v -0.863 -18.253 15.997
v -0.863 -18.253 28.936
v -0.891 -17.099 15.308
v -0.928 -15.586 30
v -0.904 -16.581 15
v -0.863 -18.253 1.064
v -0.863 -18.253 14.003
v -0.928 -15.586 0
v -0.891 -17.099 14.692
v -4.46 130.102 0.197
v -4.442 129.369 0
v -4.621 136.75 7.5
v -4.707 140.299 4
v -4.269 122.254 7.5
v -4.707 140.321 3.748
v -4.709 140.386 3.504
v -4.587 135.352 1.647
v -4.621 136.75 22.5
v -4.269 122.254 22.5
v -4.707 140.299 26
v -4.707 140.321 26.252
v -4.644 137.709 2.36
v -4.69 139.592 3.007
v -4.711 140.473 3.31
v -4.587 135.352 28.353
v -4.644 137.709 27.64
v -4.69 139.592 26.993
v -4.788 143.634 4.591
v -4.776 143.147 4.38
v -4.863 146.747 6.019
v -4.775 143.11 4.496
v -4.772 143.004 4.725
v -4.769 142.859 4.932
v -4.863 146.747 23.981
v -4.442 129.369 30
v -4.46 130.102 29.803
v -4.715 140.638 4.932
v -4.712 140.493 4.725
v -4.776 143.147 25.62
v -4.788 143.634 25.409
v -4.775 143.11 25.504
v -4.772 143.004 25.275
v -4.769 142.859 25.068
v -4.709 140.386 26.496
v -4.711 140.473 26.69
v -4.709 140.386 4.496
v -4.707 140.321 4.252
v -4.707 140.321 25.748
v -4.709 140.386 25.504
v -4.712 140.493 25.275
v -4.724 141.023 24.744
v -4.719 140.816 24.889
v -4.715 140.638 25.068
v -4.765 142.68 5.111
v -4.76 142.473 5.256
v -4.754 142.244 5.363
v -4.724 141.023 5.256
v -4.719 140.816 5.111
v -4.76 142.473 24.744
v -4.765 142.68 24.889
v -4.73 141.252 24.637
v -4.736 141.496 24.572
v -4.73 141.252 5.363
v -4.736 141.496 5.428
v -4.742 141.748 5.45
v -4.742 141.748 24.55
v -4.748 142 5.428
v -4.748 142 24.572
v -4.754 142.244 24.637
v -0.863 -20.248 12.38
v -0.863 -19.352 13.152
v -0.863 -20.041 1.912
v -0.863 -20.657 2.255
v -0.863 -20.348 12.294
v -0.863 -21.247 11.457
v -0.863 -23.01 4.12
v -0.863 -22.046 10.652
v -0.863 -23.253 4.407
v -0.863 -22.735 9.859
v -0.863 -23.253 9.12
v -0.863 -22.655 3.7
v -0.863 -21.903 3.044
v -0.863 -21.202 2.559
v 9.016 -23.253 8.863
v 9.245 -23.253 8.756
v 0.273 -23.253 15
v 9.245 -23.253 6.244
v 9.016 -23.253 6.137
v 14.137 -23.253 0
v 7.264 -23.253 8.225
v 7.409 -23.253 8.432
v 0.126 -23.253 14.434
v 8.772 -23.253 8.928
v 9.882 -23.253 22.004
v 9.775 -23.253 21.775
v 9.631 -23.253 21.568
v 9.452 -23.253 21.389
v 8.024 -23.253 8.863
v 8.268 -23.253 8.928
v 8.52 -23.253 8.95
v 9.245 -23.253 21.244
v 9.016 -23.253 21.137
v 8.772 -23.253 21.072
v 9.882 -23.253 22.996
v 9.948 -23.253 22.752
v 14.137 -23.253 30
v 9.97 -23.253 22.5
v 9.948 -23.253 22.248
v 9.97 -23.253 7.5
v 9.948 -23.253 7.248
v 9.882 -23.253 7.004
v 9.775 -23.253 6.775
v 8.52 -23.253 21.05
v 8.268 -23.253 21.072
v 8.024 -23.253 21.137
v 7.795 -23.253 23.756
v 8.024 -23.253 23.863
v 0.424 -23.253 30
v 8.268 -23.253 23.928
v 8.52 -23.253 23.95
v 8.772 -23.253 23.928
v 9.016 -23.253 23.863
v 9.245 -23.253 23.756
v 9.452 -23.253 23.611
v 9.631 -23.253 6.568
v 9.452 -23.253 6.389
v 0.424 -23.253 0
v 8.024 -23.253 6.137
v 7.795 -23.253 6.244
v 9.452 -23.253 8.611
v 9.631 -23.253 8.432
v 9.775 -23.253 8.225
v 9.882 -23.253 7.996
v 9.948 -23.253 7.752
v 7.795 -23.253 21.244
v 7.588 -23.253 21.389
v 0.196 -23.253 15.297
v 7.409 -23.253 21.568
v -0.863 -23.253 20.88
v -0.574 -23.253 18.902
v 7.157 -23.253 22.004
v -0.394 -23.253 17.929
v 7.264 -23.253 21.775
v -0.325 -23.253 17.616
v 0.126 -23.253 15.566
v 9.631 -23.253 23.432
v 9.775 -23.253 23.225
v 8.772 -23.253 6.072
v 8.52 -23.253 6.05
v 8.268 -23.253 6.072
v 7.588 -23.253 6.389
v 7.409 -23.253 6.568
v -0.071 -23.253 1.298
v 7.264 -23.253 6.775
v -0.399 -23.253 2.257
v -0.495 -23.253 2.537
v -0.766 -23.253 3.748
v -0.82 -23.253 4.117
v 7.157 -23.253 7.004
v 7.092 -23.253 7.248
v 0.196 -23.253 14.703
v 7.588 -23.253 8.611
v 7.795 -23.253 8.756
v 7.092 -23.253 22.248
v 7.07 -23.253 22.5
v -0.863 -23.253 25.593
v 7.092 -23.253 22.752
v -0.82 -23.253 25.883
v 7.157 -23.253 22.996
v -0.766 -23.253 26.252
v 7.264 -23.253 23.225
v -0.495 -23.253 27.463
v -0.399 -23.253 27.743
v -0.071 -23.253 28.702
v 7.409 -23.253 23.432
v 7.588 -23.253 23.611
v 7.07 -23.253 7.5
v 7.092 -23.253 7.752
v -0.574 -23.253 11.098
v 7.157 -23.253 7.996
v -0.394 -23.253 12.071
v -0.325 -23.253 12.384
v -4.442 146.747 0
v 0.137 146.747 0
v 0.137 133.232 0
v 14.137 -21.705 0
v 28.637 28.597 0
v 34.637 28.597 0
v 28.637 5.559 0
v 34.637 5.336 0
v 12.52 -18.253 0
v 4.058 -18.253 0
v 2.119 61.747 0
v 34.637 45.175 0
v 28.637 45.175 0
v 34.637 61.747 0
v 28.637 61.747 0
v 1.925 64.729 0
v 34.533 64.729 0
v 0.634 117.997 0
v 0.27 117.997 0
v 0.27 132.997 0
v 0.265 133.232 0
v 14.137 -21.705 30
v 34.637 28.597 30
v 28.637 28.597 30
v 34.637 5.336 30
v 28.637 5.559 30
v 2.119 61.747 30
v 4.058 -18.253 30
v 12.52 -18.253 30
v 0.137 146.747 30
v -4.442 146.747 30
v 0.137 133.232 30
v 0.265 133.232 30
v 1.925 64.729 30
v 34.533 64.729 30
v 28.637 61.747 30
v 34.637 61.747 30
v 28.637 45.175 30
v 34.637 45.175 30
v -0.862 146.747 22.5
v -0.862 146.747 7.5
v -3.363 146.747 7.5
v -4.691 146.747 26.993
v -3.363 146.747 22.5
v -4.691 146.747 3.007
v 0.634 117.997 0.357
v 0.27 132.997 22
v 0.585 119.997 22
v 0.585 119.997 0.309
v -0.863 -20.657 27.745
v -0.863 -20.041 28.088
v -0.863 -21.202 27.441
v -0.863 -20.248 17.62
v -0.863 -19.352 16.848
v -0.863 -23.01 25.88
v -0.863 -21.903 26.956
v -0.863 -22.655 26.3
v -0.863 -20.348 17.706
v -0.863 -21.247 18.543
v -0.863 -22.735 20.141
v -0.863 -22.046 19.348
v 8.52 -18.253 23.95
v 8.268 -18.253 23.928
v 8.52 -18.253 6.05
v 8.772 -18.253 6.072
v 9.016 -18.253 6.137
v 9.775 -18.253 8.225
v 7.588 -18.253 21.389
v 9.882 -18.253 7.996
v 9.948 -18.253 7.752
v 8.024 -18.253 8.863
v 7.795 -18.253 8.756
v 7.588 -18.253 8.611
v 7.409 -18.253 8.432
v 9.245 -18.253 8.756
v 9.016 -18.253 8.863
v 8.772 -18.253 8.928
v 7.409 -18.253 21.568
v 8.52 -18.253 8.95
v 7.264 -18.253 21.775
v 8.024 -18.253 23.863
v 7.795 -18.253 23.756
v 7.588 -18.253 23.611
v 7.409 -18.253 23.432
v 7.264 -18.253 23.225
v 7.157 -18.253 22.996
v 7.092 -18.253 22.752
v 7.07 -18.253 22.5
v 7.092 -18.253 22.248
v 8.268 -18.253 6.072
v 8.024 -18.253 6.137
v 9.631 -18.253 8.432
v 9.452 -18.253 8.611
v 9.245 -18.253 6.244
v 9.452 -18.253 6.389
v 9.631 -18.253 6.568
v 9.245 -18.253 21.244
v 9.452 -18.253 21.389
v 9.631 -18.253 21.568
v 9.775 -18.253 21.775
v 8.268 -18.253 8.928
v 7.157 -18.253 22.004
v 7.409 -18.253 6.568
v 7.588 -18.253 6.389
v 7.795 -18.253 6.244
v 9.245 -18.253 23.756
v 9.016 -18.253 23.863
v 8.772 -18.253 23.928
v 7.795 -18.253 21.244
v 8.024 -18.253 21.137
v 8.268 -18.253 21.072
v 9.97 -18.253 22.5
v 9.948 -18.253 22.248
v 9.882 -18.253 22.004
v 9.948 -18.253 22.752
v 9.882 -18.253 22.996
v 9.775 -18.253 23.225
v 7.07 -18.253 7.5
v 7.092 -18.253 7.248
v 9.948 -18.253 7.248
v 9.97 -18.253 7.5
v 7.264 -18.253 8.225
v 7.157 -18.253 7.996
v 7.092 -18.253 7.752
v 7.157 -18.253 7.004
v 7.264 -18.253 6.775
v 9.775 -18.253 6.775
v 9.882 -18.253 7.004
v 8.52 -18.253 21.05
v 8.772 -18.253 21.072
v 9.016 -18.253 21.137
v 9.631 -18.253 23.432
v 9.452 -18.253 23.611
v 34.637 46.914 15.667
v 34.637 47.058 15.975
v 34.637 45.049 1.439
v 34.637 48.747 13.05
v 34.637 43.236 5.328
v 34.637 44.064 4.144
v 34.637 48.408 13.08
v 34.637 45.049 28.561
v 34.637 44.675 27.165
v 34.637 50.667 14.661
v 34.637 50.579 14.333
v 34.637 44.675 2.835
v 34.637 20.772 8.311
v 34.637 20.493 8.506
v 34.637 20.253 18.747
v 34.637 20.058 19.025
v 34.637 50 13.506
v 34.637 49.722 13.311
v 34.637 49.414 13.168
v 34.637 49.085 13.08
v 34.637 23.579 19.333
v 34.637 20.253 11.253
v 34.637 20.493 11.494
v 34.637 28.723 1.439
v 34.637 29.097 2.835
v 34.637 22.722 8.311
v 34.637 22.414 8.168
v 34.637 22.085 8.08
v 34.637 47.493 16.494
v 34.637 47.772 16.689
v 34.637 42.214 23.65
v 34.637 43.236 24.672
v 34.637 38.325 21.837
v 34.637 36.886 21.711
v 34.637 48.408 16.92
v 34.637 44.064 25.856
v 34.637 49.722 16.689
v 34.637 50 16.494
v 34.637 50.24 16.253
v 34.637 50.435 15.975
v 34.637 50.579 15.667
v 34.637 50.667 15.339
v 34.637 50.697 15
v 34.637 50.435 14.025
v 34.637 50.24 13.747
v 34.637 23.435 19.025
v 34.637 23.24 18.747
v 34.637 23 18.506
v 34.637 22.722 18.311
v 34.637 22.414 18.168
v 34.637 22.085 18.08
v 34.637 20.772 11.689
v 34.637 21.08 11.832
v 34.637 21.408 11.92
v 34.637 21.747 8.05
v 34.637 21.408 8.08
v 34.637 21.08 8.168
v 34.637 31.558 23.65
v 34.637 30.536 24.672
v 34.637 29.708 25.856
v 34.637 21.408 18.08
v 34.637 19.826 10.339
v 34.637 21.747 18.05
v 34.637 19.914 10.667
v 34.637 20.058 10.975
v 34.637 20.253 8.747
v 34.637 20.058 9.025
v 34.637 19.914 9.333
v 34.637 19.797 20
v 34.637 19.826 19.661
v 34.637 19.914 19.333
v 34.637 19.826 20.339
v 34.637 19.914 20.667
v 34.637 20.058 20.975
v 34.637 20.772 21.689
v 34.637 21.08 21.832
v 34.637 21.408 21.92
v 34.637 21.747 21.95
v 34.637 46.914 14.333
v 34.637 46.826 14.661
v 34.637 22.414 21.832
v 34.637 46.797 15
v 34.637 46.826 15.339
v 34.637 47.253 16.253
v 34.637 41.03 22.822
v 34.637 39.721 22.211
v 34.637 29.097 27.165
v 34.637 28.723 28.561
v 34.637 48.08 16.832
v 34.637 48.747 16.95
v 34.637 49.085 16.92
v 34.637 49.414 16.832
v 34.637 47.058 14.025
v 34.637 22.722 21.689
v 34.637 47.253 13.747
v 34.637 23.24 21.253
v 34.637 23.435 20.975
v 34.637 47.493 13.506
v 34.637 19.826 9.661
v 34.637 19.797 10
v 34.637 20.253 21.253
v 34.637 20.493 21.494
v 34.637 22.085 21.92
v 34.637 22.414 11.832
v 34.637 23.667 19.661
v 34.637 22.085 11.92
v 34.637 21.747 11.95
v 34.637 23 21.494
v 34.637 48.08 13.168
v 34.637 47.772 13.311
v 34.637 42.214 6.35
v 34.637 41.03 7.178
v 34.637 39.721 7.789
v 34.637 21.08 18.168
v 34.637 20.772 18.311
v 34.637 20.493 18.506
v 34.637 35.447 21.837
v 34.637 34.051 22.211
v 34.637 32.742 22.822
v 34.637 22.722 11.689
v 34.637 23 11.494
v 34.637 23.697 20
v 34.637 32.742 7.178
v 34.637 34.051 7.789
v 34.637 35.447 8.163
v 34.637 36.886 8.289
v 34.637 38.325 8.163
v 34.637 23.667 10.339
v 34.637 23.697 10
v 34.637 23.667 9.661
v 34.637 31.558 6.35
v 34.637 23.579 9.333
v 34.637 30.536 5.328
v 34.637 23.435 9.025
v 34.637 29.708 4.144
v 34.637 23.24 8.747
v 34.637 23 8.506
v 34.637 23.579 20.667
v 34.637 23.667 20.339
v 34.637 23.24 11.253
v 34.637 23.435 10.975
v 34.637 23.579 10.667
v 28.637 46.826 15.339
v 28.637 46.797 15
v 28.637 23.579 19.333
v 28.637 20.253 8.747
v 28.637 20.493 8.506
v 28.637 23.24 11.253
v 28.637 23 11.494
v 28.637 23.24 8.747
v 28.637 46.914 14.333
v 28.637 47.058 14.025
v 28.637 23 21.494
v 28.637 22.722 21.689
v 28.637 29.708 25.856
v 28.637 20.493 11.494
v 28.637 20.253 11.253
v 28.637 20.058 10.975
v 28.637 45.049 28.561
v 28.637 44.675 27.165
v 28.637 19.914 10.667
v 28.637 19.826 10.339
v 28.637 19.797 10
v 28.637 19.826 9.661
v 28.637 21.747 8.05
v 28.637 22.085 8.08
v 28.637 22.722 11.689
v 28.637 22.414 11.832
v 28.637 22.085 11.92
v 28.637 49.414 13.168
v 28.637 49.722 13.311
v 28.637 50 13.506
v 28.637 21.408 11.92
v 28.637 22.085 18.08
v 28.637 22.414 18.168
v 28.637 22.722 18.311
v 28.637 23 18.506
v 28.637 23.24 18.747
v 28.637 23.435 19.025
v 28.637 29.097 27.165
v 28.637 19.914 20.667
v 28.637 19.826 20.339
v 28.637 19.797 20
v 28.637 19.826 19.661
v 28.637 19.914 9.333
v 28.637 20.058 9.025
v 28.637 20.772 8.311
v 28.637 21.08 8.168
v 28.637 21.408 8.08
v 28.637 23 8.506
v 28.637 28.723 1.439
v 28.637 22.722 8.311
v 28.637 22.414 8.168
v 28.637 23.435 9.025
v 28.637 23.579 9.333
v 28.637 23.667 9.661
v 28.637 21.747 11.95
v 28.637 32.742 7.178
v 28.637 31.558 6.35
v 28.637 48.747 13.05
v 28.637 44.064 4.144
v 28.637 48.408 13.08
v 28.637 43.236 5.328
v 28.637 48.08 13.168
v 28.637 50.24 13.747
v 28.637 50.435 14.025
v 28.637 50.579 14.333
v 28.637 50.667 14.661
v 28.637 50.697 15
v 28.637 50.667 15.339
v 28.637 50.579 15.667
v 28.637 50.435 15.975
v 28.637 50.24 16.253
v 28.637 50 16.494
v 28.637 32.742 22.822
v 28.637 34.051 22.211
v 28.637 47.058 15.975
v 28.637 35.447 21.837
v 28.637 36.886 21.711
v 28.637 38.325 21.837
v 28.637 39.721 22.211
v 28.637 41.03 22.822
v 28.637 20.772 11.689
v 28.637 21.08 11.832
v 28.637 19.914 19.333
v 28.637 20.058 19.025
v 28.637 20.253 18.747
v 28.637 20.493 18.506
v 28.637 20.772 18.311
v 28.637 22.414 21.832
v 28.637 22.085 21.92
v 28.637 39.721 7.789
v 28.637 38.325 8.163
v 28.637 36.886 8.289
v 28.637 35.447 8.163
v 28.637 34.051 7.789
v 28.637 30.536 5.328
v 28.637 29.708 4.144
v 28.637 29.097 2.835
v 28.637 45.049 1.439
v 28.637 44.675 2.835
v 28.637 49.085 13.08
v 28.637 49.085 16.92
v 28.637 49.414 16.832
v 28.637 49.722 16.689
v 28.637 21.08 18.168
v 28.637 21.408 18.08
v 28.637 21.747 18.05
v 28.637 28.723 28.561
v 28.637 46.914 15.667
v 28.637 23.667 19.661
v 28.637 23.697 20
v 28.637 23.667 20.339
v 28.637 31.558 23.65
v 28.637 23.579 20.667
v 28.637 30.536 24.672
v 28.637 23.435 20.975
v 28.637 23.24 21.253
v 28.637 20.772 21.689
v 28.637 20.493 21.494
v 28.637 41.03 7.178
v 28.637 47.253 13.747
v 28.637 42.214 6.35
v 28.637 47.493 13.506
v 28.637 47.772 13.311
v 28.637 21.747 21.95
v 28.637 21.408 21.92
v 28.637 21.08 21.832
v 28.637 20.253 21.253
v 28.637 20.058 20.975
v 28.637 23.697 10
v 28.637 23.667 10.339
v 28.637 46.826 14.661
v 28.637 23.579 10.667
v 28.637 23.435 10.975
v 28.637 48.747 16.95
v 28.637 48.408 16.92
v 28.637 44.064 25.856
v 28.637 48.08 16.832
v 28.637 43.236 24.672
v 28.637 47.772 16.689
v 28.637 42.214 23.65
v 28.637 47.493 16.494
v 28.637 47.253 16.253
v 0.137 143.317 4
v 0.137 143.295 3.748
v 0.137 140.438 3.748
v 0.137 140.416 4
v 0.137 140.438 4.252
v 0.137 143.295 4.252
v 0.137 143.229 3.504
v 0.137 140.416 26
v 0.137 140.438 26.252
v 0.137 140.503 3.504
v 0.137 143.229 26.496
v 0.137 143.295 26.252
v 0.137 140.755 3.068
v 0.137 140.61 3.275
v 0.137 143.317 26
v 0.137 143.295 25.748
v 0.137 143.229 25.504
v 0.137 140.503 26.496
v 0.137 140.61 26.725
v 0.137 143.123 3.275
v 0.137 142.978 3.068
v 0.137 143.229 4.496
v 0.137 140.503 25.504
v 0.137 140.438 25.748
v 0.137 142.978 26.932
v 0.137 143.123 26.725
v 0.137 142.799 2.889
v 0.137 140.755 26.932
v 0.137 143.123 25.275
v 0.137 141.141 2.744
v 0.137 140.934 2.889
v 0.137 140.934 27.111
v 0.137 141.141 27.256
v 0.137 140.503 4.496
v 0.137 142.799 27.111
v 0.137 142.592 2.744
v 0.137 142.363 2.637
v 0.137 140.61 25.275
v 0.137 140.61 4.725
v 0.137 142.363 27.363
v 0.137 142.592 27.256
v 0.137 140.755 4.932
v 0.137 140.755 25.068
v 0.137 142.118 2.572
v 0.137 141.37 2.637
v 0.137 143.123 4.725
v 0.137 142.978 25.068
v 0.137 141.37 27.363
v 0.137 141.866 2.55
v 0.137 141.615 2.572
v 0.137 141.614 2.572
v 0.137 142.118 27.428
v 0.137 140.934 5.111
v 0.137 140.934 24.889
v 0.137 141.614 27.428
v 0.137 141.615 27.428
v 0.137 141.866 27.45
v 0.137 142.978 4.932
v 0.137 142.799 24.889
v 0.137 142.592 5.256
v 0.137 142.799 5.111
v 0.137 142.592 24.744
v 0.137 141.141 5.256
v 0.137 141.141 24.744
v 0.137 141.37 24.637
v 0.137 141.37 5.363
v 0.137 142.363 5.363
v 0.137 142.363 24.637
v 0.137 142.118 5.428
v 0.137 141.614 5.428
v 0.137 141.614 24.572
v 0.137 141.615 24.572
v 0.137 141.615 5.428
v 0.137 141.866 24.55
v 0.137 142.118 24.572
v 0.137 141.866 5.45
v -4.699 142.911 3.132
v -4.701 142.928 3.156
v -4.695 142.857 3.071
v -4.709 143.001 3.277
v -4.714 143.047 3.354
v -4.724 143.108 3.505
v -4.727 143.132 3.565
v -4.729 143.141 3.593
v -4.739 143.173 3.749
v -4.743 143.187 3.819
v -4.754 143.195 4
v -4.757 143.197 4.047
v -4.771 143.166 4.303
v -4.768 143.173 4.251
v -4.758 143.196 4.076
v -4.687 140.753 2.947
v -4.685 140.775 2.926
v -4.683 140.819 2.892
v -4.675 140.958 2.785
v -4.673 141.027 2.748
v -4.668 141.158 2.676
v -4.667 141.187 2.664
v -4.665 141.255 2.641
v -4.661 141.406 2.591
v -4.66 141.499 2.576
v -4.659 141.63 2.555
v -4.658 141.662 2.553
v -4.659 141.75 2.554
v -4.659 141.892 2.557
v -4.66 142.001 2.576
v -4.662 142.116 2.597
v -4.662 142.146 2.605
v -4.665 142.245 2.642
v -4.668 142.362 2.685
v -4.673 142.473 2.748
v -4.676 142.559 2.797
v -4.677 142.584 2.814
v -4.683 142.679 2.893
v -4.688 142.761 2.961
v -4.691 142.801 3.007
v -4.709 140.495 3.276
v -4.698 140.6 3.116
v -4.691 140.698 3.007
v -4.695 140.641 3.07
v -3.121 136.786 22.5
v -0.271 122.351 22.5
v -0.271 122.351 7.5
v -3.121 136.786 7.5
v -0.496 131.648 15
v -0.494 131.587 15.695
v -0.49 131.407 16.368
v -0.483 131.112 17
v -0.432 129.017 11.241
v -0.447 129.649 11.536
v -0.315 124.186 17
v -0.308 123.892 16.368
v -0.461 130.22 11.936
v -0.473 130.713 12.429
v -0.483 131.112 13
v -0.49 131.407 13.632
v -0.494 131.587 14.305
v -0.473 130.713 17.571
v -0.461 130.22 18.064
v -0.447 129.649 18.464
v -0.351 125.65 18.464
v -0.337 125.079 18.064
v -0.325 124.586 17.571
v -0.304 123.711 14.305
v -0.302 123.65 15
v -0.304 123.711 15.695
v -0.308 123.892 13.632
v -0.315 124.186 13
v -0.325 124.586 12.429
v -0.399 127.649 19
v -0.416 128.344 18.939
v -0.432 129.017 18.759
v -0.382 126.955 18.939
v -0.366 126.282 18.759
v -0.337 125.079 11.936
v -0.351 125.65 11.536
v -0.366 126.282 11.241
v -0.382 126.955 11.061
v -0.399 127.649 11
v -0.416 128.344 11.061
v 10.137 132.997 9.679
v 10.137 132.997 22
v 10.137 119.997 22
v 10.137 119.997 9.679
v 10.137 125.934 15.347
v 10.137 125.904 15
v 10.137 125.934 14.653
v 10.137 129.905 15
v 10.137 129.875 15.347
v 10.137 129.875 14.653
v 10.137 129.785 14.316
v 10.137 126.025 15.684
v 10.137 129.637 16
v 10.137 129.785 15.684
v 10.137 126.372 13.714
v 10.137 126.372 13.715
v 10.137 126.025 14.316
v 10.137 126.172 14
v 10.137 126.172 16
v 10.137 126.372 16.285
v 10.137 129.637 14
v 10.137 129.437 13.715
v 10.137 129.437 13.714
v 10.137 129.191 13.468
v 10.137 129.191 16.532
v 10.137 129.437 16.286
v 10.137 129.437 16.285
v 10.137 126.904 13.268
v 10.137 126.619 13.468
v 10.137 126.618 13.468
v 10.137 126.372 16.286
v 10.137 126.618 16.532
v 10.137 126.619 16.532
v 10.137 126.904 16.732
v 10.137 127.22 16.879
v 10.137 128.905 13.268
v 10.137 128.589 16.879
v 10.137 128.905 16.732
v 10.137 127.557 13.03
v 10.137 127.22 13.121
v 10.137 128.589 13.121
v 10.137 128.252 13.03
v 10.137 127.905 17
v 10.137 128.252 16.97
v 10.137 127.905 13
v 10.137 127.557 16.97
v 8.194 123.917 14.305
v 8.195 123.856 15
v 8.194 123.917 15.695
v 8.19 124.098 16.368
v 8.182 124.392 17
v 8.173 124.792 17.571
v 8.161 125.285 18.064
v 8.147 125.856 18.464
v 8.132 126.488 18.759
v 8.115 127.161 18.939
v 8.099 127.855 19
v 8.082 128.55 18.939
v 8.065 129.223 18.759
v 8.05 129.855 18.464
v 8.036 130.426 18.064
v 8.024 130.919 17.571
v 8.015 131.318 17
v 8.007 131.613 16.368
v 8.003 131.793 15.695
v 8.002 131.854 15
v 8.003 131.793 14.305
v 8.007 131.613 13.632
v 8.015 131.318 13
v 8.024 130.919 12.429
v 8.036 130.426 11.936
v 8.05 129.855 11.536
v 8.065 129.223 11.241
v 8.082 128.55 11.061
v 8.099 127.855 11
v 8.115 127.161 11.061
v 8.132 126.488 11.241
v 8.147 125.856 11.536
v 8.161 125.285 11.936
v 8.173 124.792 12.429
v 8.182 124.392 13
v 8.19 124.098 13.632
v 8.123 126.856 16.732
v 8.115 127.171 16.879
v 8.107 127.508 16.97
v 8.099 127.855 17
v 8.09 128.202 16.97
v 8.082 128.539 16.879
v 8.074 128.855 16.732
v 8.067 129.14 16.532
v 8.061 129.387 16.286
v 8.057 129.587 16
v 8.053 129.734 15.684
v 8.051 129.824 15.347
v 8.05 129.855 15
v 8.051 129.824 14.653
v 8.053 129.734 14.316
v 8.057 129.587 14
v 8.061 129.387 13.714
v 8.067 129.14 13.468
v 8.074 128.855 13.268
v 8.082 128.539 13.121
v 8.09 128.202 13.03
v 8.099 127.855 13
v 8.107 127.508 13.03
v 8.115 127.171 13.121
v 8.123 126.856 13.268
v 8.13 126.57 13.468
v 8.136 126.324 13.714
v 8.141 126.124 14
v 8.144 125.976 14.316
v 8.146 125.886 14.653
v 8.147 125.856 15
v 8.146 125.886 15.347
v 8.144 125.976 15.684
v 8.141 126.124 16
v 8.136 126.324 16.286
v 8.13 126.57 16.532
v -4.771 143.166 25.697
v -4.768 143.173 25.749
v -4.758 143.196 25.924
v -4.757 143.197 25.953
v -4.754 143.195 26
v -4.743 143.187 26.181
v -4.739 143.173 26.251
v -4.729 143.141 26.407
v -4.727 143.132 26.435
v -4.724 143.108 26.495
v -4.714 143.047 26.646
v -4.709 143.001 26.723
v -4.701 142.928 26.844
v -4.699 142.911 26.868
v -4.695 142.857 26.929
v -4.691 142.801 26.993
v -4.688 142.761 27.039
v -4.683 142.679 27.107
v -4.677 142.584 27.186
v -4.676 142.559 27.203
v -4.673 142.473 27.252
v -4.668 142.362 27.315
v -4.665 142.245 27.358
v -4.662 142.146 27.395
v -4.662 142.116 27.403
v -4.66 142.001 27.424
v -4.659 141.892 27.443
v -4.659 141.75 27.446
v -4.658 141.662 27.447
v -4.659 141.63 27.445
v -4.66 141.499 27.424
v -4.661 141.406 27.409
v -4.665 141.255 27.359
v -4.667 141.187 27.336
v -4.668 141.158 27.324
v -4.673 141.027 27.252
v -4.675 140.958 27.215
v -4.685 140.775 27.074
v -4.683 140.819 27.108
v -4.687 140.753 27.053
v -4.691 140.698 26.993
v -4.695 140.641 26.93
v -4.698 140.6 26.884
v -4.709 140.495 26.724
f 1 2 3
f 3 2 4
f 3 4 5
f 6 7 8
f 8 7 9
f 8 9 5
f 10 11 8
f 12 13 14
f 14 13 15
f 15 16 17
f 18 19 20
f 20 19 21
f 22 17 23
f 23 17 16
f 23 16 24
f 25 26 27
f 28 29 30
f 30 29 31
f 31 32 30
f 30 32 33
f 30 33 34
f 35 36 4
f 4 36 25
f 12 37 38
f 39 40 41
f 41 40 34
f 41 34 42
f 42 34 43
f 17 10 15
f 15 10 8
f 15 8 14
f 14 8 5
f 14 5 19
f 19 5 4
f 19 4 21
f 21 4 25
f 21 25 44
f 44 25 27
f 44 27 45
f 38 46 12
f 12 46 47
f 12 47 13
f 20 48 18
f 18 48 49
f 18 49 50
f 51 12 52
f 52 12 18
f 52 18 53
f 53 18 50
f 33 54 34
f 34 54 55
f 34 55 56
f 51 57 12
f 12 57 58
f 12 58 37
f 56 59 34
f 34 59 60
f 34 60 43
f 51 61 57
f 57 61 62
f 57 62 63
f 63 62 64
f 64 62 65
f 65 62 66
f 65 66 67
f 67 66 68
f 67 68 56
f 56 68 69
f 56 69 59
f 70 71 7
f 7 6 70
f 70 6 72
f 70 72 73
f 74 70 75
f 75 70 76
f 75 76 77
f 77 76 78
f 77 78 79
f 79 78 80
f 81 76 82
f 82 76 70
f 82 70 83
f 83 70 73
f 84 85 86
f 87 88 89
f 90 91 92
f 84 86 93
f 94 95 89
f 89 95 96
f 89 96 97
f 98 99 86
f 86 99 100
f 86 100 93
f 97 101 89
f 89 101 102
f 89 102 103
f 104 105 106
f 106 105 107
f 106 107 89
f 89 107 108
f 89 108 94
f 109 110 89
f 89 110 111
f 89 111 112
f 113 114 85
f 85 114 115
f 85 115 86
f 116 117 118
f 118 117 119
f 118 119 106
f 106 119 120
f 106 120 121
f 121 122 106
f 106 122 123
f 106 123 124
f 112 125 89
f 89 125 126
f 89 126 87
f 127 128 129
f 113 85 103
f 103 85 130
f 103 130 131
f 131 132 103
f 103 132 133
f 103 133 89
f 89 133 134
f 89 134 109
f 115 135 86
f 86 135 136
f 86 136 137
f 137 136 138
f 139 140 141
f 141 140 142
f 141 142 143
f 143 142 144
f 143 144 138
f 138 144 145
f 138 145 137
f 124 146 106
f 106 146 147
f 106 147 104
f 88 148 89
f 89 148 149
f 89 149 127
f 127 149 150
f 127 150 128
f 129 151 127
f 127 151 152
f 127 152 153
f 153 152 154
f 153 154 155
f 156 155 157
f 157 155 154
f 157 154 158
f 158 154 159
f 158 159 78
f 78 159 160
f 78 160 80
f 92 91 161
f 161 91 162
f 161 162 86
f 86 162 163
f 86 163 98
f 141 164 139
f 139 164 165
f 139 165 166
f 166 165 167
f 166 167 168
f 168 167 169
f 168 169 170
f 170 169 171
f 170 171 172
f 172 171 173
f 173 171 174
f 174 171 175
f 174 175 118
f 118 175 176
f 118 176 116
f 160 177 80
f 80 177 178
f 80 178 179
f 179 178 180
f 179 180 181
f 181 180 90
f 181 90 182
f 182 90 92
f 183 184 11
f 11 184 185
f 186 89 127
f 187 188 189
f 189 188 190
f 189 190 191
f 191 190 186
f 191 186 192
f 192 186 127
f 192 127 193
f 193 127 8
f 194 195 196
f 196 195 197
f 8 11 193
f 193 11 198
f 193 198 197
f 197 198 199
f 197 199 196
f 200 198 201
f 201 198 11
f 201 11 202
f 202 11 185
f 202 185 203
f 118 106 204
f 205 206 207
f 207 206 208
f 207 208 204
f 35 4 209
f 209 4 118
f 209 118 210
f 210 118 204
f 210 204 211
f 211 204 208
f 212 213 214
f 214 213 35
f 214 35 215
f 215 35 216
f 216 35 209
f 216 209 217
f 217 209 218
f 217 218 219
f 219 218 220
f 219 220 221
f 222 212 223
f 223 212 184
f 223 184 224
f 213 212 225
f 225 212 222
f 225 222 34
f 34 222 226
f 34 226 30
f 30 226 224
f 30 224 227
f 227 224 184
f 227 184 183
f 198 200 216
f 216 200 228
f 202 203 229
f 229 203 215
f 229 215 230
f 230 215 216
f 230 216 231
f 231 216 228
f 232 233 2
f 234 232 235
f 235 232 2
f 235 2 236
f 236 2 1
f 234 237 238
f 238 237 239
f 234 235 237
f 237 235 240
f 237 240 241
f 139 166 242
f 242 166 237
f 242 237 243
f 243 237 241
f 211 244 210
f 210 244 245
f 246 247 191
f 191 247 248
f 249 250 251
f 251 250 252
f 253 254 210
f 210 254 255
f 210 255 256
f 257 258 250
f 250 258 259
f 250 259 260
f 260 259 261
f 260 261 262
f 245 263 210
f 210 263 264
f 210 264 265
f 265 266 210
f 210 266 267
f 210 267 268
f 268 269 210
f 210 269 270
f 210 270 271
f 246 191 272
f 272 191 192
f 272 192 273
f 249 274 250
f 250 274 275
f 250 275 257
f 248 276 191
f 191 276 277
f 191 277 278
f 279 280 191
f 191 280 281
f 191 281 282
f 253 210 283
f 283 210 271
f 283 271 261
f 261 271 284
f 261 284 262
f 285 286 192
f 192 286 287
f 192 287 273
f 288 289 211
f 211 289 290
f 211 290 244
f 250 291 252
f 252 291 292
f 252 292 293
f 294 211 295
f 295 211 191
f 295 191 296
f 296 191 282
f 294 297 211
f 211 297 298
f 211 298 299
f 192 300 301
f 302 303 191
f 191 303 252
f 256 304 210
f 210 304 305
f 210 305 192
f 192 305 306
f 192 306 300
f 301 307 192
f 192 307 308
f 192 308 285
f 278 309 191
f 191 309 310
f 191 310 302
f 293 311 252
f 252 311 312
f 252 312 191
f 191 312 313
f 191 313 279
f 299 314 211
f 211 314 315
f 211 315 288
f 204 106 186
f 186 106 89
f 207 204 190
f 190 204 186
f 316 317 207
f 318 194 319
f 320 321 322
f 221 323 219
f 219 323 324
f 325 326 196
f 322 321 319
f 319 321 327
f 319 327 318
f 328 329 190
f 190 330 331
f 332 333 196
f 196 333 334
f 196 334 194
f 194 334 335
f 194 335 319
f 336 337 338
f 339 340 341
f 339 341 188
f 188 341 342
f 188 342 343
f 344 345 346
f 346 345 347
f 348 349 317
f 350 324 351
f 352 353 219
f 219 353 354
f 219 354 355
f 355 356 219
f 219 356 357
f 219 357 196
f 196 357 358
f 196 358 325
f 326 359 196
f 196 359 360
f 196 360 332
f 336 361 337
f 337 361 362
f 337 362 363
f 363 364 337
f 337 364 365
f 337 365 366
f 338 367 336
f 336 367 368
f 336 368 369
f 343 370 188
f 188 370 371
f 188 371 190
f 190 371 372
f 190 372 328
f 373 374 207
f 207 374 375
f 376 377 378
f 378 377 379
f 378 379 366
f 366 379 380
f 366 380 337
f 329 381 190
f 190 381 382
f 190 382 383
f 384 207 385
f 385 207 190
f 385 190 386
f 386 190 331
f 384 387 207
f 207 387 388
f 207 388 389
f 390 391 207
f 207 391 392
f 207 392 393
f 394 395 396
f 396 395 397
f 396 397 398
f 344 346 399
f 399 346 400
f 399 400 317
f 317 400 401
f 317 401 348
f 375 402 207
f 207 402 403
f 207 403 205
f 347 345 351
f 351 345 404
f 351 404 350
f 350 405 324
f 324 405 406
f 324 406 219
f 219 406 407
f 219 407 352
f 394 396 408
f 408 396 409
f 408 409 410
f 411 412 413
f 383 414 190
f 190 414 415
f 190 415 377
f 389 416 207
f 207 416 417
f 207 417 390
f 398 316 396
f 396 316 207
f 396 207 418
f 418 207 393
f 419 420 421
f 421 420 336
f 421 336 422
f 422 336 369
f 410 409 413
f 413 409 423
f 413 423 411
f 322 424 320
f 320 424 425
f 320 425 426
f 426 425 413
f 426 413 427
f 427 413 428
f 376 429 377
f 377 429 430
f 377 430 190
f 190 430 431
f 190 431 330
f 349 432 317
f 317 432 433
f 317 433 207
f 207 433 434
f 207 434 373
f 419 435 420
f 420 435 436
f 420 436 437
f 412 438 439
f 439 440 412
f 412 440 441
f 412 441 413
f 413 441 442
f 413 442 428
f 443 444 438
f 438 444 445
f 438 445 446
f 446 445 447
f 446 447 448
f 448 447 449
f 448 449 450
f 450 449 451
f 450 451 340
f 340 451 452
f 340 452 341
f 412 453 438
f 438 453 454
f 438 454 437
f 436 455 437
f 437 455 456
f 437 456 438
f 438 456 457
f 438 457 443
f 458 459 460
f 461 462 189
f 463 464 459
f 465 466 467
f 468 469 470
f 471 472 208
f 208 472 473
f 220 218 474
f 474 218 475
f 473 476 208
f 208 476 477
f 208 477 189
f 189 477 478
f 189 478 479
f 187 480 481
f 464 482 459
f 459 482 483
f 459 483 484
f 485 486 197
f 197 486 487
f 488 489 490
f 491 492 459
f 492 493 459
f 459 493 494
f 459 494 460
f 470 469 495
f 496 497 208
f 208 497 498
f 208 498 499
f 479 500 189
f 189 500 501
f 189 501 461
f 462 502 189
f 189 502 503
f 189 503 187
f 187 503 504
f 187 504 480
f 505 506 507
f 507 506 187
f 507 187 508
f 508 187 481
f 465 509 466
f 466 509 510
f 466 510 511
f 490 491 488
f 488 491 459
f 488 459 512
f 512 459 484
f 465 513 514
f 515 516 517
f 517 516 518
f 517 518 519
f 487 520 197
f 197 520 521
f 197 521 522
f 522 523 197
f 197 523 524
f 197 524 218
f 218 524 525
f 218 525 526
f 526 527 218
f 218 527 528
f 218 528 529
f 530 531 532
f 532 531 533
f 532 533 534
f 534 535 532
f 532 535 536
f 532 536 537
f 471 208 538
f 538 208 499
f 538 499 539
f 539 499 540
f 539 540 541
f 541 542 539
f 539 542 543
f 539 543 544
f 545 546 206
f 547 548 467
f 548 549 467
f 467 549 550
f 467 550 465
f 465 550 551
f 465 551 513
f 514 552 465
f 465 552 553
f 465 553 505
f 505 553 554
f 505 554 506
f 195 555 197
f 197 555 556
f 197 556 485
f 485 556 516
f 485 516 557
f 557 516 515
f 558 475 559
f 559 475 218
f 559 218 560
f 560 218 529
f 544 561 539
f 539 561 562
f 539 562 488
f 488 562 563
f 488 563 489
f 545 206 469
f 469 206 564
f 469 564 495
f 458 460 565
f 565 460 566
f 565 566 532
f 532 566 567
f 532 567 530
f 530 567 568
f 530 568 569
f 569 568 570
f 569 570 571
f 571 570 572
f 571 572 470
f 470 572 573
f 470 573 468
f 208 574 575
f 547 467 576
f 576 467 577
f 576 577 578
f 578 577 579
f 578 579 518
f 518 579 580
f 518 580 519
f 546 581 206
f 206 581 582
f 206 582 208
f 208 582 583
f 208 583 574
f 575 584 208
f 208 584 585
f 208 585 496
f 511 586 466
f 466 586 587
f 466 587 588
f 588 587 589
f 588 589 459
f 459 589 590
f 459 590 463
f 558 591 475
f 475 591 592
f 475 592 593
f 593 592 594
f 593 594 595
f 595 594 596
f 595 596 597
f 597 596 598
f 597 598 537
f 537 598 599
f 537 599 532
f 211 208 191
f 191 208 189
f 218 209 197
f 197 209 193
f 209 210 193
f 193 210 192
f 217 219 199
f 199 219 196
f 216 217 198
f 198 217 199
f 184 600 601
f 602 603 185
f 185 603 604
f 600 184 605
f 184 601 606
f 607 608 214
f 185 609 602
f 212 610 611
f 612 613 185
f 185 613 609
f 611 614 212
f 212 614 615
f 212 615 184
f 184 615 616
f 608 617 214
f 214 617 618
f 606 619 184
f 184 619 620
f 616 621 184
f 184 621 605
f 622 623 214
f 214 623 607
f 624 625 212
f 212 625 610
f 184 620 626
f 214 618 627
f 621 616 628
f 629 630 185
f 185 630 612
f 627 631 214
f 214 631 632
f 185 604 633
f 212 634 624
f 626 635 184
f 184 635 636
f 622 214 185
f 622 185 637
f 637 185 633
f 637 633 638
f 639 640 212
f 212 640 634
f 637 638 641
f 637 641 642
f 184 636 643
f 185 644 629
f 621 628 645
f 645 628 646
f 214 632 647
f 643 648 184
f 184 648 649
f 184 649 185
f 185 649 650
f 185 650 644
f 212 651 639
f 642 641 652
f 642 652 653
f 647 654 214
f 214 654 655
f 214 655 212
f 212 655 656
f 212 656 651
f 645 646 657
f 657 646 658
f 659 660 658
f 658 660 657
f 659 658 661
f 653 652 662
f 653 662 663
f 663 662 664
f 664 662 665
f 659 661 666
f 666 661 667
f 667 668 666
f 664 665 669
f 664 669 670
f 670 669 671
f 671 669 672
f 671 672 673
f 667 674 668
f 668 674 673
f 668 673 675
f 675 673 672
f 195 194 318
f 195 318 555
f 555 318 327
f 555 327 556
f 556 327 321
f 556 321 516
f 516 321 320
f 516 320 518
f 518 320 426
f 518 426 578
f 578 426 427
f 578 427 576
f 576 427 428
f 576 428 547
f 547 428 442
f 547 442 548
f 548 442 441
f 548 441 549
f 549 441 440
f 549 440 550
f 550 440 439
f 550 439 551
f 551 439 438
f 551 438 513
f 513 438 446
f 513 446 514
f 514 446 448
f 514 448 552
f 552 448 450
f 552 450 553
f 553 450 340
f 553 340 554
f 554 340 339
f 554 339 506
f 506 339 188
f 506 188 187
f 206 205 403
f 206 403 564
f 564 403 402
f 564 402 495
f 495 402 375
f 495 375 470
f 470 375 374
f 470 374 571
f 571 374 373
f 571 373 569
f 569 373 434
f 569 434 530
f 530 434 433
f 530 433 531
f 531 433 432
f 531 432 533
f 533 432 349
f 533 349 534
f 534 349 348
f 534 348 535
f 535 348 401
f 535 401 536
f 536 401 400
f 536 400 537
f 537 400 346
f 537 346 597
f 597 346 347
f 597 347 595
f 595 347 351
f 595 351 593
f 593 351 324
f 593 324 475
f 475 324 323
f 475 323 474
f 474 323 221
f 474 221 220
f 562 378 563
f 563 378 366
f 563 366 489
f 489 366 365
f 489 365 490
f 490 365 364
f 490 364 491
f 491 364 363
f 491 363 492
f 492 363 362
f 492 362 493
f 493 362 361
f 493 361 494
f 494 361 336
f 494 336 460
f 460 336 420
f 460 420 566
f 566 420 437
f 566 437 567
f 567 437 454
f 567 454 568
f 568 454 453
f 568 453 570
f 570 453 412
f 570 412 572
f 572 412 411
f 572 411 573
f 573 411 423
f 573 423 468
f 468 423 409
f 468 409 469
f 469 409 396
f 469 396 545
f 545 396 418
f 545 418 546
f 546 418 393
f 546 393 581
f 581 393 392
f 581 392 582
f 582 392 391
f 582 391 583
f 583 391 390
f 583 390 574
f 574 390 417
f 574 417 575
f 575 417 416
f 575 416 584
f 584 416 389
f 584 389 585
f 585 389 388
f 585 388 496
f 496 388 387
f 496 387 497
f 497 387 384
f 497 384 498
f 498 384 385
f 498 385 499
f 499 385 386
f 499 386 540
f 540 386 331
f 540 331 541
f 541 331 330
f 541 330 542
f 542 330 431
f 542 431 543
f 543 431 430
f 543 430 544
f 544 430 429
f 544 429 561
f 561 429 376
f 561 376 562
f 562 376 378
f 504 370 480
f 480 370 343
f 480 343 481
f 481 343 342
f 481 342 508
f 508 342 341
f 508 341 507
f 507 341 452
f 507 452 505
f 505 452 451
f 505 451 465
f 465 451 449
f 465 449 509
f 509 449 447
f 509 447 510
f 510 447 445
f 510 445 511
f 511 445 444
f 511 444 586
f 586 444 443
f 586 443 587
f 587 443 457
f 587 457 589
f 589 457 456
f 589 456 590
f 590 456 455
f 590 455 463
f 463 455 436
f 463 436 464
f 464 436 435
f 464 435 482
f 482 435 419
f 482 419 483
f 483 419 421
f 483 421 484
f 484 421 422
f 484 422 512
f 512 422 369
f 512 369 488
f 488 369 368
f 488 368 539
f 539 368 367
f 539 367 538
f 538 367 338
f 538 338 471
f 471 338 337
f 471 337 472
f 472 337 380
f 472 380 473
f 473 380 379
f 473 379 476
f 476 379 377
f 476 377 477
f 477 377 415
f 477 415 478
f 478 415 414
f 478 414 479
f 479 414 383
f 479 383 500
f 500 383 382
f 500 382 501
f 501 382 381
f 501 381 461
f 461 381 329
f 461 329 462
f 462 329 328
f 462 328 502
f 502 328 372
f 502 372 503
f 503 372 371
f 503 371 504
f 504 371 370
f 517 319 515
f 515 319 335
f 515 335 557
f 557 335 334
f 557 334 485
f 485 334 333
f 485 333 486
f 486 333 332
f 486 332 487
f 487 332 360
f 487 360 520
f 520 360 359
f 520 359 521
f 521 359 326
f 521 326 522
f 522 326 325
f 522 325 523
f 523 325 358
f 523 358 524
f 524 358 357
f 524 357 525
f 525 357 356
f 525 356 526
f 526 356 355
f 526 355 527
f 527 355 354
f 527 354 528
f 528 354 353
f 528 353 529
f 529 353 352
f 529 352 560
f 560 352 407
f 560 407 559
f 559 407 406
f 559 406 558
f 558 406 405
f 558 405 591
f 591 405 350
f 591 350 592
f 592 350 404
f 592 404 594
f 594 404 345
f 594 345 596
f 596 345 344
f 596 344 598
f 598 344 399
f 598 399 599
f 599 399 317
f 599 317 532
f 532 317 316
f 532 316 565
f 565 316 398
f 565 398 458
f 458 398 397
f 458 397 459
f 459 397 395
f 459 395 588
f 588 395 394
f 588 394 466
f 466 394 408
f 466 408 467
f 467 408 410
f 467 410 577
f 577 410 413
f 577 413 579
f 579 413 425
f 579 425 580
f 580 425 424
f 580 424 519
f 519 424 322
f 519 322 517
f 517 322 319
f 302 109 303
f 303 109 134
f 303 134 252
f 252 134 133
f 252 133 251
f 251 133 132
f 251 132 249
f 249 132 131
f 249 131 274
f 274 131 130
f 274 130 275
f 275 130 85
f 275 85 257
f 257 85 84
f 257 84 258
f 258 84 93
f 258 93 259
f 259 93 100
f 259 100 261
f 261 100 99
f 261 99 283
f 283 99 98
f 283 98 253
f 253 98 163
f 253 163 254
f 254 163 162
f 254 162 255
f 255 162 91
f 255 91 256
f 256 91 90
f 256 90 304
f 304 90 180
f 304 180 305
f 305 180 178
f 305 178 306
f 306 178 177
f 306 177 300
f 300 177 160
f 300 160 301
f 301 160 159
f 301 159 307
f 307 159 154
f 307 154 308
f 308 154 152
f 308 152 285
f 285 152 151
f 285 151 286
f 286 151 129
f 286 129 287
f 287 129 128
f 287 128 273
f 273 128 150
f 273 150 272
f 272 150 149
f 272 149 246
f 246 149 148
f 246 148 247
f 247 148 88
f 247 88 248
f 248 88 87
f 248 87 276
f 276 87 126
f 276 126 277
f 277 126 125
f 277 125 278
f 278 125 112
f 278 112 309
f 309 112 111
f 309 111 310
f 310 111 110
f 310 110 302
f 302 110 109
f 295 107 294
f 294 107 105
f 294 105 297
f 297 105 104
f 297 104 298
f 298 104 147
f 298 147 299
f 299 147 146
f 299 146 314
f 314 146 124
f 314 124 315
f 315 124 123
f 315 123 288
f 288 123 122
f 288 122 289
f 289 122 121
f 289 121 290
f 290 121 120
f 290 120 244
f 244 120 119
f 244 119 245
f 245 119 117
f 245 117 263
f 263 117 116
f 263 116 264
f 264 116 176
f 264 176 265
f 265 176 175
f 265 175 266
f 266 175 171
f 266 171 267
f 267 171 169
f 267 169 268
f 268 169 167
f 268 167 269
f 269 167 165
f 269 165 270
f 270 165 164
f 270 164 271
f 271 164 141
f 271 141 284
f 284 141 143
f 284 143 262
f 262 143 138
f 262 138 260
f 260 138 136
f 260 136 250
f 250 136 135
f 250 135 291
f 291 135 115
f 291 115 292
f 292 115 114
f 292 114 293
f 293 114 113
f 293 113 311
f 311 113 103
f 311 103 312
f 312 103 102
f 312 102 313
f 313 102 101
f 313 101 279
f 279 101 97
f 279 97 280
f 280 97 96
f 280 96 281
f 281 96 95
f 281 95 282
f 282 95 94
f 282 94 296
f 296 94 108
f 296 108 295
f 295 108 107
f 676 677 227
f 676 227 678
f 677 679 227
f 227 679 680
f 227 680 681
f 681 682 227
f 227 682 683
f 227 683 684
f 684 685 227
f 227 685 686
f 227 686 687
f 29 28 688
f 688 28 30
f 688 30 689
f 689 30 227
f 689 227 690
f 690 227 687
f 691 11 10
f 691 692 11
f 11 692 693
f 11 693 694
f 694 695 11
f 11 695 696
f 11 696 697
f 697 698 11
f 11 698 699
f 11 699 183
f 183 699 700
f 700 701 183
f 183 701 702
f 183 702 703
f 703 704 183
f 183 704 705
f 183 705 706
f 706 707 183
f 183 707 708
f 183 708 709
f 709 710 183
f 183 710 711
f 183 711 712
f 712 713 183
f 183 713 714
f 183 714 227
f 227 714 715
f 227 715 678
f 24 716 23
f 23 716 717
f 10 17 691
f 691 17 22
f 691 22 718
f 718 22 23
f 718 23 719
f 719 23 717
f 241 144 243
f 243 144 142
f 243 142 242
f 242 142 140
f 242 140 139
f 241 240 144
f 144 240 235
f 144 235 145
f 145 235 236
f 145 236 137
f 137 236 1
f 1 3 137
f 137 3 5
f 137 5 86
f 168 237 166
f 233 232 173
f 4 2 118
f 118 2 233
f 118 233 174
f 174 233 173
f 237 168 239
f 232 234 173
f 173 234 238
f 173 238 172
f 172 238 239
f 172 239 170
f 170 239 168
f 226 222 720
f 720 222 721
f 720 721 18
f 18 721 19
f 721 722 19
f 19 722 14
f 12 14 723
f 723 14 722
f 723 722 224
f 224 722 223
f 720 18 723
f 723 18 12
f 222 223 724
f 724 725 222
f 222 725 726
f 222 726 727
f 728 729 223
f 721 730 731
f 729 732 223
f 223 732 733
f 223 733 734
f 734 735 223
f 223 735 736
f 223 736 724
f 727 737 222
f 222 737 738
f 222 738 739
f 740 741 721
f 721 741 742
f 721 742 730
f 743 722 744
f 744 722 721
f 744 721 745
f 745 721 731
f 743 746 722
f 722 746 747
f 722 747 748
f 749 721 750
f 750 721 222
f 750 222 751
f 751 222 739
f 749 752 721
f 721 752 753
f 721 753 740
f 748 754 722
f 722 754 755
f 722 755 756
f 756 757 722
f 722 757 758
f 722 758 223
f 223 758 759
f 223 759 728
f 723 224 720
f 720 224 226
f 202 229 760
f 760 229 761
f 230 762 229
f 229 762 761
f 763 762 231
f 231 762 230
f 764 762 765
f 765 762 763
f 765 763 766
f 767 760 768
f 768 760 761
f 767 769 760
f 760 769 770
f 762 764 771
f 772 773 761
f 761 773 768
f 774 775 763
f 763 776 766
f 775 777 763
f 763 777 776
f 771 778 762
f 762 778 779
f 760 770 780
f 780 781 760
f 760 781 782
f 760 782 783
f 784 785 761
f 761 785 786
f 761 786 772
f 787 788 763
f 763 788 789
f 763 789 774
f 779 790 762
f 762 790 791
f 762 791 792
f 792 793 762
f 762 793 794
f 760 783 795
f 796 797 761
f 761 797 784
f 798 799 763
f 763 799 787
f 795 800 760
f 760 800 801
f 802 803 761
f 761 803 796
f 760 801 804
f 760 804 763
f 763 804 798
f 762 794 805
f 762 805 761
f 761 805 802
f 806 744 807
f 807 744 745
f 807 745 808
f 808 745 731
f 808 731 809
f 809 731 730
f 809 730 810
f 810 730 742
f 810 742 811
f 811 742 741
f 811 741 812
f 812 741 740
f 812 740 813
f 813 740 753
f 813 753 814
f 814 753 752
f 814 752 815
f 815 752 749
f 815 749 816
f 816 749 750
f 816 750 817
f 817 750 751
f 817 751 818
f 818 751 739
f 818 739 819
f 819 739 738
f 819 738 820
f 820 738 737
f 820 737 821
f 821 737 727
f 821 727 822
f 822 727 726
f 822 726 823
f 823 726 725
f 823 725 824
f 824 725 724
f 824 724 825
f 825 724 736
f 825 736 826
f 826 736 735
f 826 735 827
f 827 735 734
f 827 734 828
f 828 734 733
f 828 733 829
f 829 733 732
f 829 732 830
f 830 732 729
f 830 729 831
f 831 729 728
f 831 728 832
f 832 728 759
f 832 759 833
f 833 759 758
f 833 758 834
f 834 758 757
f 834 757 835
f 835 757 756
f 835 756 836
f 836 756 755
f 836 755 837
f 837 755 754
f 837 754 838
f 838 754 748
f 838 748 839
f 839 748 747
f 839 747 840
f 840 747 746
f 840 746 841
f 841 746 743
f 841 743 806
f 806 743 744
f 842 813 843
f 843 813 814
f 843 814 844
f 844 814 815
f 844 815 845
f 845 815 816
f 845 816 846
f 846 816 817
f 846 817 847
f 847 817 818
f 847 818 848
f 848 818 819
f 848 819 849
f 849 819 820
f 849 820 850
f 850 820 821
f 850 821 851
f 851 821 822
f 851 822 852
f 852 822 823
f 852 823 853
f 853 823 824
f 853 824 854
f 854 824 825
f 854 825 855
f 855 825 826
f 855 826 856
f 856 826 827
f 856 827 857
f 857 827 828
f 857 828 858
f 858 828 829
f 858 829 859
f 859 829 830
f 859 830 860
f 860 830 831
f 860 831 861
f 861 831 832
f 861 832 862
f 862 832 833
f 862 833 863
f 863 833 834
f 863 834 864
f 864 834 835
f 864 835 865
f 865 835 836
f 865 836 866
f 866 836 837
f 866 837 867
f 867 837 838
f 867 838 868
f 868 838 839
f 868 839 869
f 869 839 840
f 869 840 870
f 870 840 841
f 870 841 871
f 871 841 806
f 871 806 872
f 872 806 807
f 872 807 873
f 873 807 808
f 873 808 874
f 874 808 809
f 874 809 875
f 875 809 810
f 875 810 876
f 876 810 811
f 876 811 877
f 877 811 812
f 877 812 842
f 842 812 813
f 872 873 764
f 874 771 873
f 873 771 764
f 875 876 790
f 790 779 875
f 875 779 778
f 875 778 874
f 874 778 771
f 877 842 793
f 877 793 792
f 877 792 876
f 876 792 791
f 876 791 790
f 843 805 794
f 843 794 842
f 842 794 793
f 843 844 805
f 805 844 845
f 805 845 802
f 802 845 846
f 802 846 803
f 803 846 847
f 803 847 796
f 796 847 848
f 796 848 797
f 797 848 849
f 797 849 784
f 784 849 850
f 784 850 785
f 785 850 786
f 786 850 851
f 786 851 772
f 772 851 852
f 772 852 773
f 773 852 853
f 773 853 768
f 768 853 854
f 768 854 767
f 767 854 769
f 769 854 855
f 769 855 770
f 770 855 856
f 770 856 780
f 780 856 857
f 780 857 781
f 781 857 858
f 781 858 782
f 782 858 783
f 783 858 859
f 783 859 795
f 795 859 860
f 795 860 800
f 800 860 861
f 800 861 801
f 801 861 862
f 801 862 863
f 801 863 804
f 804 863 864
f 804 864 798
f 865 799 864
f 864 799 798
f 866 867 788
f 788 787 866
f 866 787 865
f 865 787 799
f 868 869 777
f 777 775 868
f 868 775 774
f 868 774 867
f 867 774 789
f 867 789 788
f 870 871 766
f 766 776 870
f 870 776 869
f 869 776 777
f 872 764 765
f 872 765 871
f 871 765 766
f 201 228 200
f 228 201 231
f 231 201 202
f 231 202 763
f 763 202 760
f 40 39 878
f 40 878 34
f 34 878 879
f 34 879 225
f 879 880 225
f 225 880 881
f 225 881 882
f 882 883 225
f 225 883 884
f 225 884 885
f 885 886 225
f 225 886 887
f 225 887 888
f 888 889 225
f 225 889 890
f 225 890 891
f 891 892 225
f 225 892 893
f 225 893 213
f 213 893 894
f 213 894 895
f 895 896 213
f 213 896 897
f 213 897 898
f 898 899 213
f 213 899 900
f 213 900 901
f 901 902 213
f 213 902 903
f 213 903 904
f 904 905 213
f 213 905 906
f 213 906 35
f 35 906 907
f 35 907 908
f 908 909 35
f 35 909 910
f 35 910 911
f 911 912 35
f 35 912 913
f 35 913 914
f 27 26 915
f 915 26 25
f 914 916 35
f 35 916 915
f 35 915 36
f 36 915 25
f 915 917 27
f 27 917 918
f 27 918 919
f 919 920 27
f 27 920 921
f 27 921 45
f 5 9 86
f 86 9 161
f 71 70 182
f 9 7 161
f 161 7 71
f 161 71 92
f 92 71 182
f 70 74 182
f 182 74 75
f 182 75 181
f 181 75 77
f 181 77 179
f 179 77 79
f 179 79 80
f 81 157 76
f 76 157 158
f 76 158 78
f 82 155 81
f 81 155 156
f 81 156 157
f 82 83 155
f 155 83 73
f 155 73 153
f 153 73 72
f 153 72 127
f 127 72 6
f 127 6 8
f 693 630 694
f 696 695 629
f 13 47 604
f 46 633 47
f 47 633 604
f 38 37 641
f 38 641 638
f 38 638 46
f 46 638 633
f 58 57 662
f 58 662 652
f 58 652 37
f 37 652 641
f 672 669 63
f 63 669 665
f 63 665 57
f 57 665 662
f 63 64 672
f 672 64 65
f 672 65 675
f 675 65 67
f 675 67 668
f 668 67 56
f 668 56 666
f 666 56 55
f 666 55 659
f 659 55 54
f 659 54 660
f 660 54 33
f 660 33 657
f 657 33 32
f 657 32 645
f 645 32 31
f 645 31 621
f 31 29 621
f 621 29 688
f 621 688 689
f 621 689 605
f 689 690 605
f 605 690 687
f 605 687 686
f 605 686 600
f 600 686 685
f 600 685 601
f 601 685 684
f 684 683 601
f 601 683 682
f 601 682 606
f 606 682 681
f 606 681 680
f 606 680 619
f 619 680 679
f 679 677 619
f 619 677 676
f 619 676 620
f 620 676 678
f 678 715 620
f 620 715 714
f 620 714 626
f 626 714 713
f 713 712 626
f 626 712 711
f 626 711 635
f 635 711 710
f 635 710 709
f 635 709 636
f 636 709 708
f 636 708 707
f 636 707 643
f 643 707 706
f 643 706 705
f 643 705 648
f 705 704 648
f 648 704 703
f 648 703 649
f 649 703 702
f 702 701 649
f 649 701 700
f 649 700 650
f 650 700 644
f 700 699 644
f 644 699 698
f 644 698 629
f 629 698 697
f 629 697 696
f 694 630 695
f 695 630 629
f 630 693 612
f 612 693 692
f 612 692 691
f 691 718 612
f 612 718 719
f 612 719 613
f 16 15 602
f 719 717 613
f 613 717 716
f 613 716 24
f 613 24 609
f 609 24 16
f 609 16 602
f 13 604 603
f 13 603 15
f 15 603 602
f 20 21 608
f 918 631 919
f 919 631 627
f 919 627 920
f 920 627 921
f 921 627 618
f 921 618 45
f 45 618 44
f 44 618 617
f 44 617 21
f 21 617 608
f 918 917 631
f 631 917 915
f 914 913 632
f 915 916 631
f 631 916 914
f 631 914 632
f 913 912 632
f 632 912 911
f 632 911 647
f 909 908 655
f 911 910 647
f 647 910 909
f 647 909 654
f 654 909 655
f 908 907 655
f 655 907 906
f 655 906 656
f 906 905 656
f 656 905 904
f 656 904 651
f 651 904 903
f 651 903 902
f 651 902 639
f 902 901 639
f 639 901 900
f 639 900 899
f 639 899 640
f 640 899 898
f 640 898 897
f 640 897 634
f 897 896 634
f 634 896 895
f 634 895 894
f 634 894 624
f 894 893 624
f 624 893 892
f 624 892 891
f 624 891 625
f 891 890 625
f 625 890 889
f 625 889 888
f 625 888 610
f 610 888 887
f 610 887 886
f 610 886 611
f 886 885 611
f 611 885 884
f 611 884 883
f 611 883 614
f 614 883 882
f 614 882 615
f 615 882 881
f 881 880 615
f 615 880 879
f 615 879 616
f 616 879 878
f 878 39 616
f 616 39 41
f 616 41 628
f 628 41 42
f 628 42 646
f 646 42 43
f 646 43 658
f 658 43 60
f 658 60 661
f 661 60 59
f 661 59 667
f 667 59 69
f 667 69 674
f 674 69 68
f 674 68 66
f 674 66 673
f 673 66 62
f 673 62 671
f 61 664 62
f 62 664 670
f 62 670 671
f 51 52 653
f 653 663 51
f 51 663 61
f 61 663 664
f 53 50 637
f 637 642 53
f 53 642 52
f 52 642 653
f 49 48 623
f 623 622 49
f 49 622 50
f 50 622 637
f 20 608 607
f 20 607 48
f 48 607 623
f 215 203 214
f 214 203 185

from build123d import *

# Parameters (mm, degrees)
EXTRUDE1_DEPTH                 = 30
EXTRUDE2_DEPTH                 = 30
SKETCH4_R                      = 8.288803623
EXTRUDE4_DEPTH                 = 30
SKETCH5_R                      = 1.95
EXTRUDE5_DEPTH                 = 20
SKETCH6_R                      = 1.95
EXTRUDE6_DEPTH                 = 20
SKETCH9_R                      = 1.45
EXTRUDE9_DEPTH                 = 20
EXTRUDE12_DEPTH                = 171
EXTRUDE15_START                = -4
EXTRUDE15_DEPTH                = 14
SKETCH17_W                     = 15
SKETCH17_H                     = 14.5
EXTRUDE17_DEPTH                = 4
SKETCH18_W                     = 2.5
SKETCH18_H                     = 15
EXTRUDE18_DEPTH                = 10
SKETCH19_W                     = 22
SKETCH19_H                     = 13
EXTRUDE19_DEPTH                = 10
SKETCH20_R                     = 4
EXTRUDE20_DEPTH                = 8.5
SKETCH21_R                     = 2
EXTRUDE21_DEPTH                = 9
EXTRUDE22_DEPTH                = 15
F_2_9_2_9_DIAMETER_HOLE1_D     = 2.9
F_2_9_2_9_DIAMETER_HOLE1_DEPTH = 10
EXTRUDE23_DEPTH                = 32


with BuildPart() as part:
    # Sketch1 → Extrude1 (new body)
    with BuildSketch(Plane.XY):
        Polygon((-0.863115633, -23.253389327), (14.136884367, -23.253389327), (14.136884367, -21.7046417), (34.636884367, 5.336278221), (34.636884367, 61.746610673), (28.636884367, 61.746610673), (28.636884367, 5.55848015), (12.519738096, -18.253389327), (-0.863115633, -18.253389327), align=None)
    extrude(amount=EXTRUDE1_DEPTH)

    # Sketch2 → Extrude2 (add)
    with BuildSketch(Plane.XY):
        Polygon((-0.863115633, -18.253389327), (-4.863115633, 146.746610673), (-0.063115633, 146.746610673), (0.136884367, 146.746610673), (0.136884367, 138.496610673), (1.925187517, 64.729105762), (34.532746461, 64.729105762), (34.636884367, 61.746610673), (28.636884367, 61.746610673), (2.118981118, 61.746610673), (4.058375057, -18.253389327), align=None)
    extrude(amount=EXTRUDE2_DEPTH)

    # Sketch4 → Extrude4 (cut)
    with BuildSketch(Plane(origin=(34.636884367, 0, 0), x_dir=(0, 0, -1), z_dir=(1, 0, 0))):
        with Locations((0, 36.886010892)):
            Circle(SKETCH4_R)
        with Locations((-30, 36.886010892)):
            Circle(SKETCH4_R)
    extrude(amount=-EXTRUDE4_DEPTH, mode=Mode.SUBTRACT)

    # Sketch5 → Extrude5 (cut)
    with BuildSketch(Plane(origin=(34.636884367, 0, 0), x_dir=(0, 0, -1), z_dir=(1, 0, 0))):
        with Locations((-20, 21.746610673)):
            Circle(SKETCH5_R)
        with Locations((-10, 21.746610673)):
            Circle(SKETCH5_R)
    extrude(amount=-EXTRUDE5_DEPTH, mode=Mode.SUBTRACT)

    # Sketch6 → Extrude6 (cut)
    with BuildSketch(Plane(origin=(34.636884367, 0, 0), x_dir=(0, 0, -1), z_dir=(1, 0, 0))):
        with Locations((-15, 48.746610673)):
            Circle(SKETCH6_R)
    extrude(amount=-EXTRUDE6_DEPTH, mode=Mode.SUBTRACT)

    # Sketch9 → Extrude9 (cut)
    with BuildSketch(Plane.XZ.offset(23.253389327)):
        with Locations((8.519738096, 7.5)):
            Circle(SKETCH9_R)
        with Locations((8.519738096, 22.5)):
            Circle(SKETCH9_R)
    extrude(amount=-EXTRUDE9_DEPTH, mode=Mode.SUBTRACT)

    # Sketch14 → Extrude12 (cut, through all)
    with BuildSketch(Plane(origin=(0, 146.746610673, 0), x_dir=(-1, 0, 0), z_dir=(0, 1, 0))):
        with BuildLine():
            Line((4.441840203, 0), (4.863115633, 0))
            Line((4.863115633, 0), (4.863115633, 6.019259174))
            add(Edge.make_bspline(
                [(4.441840203, 0), (4.519153962, 0.855924936), (4.700126089, 2.859430629), (4.803757165, 4.868494671), (4.863115633, 6.019259174)],
                knots=[0, 0, 0, 0, 0.427213628, 1, 1, 1, 1], degree=3))
        make_face()
    extrude12 = extrude(amount=-EXTRUDE12_DEPTH, mode=Mode.SUBTRACT)

    # Sketch15 → Extrude15 (cut)
    with BuildSketch(Plane(origin=(-1.713118599, -23.403267784, 0), x_dir=(-0.984807753, -0.173648178, 0), z_dir=(-0.173648178, 0.984807753, 0)).offset(EXTRUDE15_START)):
        with BuildLine():
            Line((-1.981754914, 15), (2.058740939, 15))
            Line((2.058740939, 15), (2.058740939, 30))
            Line((2.058740939, 30), (-2.130916258, 30))
            add(Edge.make_bspline(
                [(-2.130916258, 30), (-1.660064232, 28.72309887), (-0.852396925, 26.871960577), (-0.491380927, 22.662378444), (-1.504639477, 16.84253988), (-1.773156449, 15.805572323), (-1.981754914, 15)],
                knots=[0, 0, 0, 0, 0.210481429, 0.646187552, 0.725139409, 1, 1, 1, 1], degree=3))
        make_face()
    extrude15 = extrude(amount=EXTRUDE15_DEPTH, mode=Mode.SUBTRACT)

    # Sketch17 → Extrude17 (cut)
    with BuildSketch(Plane(origin=(-1.304855183, -0.031632853, 0), x_dir=(0, 0, 1), z_dir=(-0.999706282, -0.024235304, 0))):
        with Locations((15, 129.571367621)):
            Rectangle(SKETCH17_W, SKETCH17_H)
    extrude(amount=-EXTRUDE17_DEPTH, mode=Mode.SUBTRACT)

    # Sketch18 → Extrude18 (cut)
    with BuildSketch(Plane(origin=(-3.315907411, 136.781180707, 0), x_dir=(0.999706282, 0.024235304, 0), z_dir=(0.024235304, -0.999706282, 0))):
        with Locations((1.444761444, 15)):
            Rectangle(SKETCH18_W, SKETCH18_H)
    extrude(amount=-EXTRUDE18_DEPTH, mode=Mode.SUBTRACT)

    # Sketch19 → Extrude19 (add)
    with BuildSketch(Plane(origin=(0.136884367, 0, 0), x_dir=(0, 0, -1), z_dir=(1, 0, 0))):
        with Locations((-11, 126.496610673)):
            Rectangle(SKETCH19_W, SKETCH19_H)
    extrude(amount=EXTRUDE19_DEPTH)

    # Sketch20 → Extrude20 (cut)
    with BuildSketch(Plane(origin=(2.693969944, 0.065308362, 0), x_dir=(0, 0, 1), z_dir=(-0.999706282, -0.024235304, 0))):
        with Locations((15, 127.621367621)):
            Circle(SKETCH20_R)
    extrude(amount=-EXTRUDE20_DEPTH, mode=Mode.SUBTRACT)

    # Sketch21 → Extrude21 (cut)
    with BuildSketch(Plane(origin=(11.19147334, 0.271308445, 0), x_dir=(0, 0, 1), z_dir=(-0.999706282, -0.024235304, 0))):
        with Locations((15, 127.621367621)):
            Circle(SKETCH21_R)
    extrude(amount=-EXTRUDE21_DEPTH, mode=Mode.SUBTRACT)

    # Sketch22 → Extrude22 (cut)
    with BuildSketch(Plane(origin=(0, 132.996610673, 0), x_dir=(-1, 0, 0), z_dir=(0, 1, 0))):
        Polygon((-0.270217701, 0), (-10.136884367, 9.679287559), (-10.136884367, 0), align=None)
    extrude(amount=-EXTRUDE22_DEPTH, mode=Mode.SUBTRACT)

    # Mirror1: Extrude12 across plane
    add(extrude12.mirror(Plane.XY.offset(15)), mode=Mode.SUBTRACT)

    # Mirror2: Extrude15 across plane
    add(extrude15.mirror(Plane.XY.offset(15)), mode=Mode.SUBTRACT)

    # Ø2.9 (2.9) Diameter Hole1
    with Locations(Plane(origin=(-4.741939114, 141.748079264, 4), x_dir=(0.024235304, -0.999706282, 0), z_dir=(-0.999706282, -0.024235304, 0))):
        with Locations((0, 0)):
            f_2_9_2_9_diameter_hole1 = Hole(F_2_9_2_9_DIAMETER_HOLE1_D / 2, depth=F_2_9_2_9_DIAMETER_HOLE1_DEPTH)

    # Mirror3: Ø2.9 (2.9) Diameter Hole1 across plane
    add(f_2_9_2_9_diameter_hole1.mirror(Plane.XY.offset(15)), mode=Mode.SUBTRACT)

    # Sketch24 → Extrude23 (cut)
    with BuildSketch(Plane.XY.offset(30)):
        Polygon((0.136884367, 138.496610673), (0.136884367, 133.231496822), (0.638228483, 133.231496822), align=None)
    extrude(amount=-EXTRUDE23_DEPTH, mode=Mode.SUBTRACT)


solid = part.part
